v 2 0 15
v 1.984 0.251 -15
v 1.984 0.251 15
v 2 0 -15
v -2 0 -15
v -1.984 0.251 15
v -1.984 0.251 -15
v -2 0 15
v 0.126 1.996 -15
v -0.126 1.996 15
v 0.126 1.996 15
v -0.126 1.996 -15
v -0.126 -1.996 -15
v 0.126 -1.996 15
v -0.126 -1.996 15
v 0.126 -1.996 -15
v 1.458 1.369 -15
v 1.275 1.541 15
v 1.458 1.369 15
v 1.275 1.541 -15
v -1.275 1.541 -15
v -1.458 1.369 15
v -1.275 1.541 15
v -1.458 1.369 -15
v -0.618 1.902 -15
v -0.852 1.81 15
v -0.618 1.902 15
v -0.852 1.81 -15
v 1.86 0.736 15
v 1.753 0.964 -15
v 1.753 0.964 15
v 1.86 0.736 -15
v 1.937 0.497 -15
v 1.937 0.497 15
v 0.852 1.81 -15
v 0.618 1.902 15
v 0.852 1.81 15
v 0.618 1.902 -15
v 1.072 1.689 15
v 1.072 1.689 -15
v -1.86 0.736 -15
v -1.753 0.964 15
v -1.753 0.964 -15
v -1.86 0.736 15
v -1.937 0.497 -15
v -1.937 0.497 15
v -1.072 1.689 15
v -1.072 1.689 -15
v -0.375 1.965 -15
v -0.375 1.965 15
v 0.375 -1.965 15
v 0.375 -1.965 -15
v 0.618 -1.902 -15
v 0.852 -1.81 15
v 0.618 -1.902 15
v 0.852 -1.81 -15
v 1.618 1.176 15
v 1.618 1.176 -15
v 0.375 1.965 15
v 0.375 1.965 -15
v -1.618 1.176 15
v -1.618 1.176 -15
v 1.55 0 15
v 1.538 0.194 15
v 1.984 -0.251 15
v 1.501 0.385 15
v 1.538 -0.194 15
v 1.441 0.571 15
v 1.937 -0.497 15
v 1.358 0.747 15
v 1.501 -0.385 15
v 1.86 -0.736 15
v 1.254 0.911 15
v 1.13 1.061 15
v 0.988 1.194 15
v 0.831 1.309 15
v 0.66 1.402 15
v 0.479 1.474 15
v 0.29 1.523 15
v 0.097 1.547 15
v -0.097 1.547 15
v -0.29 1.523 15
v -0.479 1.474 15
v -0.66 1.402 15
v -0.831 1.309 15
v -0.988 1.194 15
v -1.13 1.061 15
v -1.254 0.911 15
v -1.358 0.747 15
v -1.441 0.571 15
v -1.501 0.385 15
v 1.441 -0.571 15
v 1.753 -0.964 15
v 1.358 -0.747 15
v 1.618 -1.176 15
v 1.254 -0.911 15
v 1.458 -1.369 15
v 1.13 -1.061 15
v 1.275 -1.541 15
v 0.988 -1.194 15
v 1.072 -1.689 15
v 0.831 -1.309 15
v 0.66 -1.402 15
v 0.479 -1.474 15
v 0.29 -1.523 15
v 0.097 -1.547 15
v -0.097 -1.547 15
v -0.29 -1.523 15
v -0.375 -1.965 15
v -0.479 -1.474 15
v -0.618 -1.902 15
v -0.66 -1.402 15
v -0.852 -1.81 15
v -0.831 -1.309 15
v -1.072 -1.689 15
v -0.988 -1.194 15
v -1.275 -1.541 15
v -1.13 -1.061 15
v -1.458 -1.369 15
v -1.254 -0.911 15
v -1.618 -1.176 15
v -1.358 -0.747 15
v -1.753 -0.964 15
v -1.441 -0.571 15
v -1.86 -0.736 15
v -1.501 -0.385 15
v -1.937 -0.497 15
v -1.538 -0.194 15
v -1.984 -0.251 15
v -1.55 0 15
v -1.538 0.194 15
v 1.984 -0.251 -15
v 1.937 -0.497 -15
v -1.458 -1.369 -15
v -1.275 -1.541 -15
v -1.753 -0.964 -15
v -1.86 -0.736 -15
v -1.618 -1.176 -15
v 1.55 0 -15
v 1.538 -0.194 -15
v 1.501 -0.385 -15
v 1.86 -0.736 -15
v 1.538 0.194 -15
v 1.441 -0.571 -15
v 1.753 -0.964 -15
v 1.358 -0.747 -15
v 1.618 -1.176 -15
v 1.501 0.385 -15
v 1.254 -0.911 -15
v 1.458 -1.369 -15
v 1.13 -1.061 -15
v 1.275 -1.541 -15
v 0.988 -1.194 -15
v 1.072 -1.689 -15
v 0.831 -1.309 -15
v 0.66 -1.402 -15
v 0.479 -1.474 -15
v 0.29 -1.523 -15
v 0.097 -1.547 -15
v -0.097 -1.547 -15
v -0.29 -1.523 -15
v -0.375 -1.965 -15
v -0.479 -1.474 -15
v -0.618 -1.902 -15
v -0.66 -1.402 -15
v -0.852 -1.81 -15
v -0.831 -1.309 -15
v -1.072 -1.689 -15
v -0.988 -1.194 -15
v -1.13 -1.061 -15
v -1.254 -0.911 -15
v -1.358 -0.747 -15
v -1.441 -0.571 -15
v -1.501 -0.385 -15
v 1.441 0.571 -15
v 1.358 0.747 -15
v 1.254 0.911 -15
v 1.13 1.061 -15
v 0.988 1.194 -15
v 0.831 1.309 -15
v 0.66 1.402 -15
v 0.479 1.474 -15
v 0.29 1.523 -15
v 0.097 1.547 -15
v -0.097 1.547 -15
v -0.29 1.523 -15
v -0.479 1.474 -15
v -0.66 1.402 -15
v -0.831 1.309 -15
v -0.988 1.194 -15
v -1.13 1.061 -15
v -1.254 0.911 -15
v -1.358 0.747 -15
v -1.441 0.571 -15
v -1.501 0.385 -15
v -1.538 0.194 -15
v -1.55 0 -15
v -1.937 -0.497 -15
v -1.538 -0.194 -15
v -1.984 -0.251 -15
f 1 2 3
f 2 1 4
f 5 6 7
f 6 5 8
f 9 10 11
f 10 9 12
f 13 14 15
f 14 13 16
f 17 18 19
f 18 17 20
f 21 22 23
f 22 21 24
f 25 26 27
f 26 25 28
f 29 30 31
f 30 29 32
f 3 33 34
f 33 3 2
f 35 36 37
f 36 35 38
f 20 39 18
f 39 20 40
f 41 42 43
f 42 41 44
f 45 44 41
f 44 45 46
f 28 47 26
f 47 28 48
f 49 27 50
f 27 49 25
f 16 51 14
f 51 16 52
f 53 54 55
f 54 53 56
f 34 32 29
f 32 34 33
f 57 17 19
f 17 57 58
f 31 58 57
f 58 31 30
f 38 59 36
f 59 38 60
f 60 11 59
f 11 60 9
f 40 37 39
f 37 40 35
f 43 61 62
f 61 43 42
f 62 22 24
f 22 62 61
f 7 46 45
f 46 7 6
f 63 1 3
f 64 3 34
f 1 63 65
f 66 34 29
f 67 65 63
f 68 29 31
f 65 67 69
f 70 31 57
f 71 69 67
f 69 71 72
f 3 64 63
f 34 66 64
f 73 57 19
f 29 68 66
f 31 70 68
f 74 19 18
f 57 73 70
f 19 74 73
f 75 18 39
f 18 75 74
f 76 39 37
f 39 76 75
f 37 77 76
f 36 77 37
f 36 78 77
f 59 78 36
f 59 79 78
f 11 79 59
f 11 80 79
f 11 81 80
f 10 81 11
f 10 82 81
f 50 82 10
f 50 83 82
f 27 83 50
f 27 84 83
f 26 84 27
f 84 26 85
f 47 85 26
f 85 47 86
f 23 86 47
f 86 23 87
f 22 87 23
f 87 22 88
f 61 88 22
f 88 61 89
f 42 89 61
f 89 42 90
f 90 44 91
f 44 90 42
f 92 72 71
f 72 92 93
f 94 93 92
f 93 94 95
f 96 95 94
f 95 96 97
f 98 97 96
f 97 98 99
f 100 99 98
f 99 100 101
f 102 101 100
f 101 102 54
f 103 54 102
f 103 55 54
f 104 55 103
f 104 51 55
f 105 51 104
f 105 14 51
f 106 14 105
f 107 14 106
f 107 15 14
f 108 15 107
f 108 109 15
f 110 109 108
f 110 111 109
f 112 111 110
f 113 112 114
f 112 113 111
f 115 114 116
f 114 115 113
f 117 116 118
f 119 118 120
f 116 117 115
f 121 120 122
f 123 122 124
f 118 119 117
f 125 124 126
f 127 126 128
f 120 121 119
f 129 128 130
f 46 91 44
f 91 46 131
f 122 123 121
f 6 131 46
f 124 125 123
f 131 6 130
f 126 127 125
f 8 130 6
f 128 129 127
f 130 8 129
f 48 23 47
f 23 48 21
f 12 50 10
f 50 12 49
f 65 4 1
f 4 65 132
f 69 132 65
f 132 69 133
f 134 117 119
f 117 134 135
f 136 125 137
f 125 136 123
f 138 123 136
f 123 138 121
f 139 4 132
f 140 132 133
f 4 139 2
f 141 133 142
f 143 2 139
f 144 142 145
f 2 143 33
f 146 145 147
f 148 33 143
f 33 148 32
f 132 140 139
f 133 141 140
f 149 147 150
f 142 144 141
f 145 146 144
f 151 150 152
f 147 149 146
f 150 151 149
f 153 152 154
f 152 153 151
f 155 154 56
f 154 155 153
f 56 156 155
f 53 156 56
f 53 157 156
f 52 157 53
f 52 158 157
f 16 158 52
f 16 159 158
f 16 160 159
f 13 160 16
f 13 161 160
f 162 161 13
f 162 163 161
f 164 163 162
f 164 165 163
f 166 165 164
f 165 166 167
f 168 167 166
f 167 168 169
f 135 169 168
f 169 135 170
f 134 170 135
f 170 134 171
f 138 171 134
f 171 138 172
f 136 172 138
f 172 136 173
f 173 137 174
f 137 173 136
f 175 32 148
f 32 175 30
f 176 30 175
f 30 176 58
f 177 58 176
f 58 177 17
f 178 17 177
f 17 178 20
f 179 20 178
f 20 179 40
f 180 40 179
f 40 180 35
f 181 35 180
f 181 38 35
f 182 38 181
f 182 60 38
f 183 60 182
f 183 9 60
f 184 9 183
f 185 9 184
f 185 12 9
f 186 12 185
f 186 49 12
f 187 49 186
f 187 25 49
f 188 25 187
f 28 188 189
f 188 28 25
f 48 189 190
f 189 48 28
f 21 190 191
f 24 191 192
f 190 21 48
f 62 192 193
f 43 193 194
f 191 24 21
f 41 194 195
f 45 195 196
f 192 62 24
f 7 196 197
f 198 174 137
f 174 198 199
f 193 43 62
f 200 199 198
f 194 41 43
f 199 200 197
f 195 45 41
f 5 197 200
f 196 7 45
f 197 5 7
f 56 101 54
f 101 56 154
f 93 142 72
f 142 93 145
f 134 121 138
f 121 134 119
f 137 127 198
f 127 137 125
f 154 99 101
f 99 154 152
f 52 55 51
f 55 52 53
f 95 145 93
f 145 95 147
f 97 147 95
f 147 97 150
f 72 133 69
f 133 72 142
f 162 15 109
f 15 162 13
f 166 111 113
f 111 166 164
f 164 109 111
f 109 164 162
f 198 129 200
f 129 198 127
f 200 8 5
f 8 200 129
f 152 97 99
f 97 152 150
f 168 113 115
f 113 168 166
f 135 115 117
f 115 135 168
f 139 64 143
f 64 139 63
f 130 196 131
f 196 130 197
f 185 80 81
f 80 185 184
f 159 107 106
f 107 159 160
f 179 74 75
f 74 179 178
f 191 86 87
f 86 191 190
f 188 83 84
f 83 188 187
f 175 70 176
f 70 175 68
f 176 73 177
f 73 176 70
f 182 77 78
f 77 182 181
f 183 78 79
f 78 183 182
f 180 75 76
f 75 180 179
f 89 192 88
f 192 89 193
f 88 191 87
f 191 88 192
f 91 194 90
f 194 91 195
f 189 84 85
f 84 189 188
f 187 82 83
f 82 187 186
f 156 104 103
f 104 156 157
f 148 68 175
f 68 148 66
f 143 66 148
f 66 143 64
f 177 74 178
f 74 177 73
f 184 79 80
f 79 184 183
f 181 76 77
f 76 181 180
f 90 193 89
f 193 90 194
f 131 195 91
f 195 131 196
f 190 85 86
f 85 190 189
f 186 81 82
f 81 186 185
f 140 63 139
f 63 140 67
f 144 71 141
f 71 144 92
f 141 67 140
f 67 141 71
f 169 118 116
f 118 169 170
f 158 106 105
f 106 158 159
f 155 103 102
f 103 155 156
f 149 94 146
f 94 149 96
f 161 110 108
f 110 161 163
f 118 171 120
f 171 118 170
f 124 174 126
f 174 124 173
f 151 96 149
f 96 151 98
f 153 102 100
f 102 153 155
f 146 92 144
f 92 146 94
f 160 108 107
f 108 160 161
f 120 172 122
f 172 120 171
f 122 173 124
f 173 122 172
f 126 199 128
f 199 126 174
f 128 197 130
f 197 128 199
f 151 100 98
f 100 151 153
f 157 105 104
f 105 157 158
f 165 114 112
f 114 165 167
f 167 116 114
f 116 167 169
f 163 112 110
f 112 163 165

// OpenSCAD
$fn = 50;


difference() {
	union() {
		translate(v = [0, 0, -15.0000000000]) {
			cylinder(h = 30, r = 2.0000000000);
		}
	}
	union() {
		translate(v = [0, 0, -100.0000000000]) {
			cylinder(h = 200, r = 1.5500000000);
		}
	}
}
